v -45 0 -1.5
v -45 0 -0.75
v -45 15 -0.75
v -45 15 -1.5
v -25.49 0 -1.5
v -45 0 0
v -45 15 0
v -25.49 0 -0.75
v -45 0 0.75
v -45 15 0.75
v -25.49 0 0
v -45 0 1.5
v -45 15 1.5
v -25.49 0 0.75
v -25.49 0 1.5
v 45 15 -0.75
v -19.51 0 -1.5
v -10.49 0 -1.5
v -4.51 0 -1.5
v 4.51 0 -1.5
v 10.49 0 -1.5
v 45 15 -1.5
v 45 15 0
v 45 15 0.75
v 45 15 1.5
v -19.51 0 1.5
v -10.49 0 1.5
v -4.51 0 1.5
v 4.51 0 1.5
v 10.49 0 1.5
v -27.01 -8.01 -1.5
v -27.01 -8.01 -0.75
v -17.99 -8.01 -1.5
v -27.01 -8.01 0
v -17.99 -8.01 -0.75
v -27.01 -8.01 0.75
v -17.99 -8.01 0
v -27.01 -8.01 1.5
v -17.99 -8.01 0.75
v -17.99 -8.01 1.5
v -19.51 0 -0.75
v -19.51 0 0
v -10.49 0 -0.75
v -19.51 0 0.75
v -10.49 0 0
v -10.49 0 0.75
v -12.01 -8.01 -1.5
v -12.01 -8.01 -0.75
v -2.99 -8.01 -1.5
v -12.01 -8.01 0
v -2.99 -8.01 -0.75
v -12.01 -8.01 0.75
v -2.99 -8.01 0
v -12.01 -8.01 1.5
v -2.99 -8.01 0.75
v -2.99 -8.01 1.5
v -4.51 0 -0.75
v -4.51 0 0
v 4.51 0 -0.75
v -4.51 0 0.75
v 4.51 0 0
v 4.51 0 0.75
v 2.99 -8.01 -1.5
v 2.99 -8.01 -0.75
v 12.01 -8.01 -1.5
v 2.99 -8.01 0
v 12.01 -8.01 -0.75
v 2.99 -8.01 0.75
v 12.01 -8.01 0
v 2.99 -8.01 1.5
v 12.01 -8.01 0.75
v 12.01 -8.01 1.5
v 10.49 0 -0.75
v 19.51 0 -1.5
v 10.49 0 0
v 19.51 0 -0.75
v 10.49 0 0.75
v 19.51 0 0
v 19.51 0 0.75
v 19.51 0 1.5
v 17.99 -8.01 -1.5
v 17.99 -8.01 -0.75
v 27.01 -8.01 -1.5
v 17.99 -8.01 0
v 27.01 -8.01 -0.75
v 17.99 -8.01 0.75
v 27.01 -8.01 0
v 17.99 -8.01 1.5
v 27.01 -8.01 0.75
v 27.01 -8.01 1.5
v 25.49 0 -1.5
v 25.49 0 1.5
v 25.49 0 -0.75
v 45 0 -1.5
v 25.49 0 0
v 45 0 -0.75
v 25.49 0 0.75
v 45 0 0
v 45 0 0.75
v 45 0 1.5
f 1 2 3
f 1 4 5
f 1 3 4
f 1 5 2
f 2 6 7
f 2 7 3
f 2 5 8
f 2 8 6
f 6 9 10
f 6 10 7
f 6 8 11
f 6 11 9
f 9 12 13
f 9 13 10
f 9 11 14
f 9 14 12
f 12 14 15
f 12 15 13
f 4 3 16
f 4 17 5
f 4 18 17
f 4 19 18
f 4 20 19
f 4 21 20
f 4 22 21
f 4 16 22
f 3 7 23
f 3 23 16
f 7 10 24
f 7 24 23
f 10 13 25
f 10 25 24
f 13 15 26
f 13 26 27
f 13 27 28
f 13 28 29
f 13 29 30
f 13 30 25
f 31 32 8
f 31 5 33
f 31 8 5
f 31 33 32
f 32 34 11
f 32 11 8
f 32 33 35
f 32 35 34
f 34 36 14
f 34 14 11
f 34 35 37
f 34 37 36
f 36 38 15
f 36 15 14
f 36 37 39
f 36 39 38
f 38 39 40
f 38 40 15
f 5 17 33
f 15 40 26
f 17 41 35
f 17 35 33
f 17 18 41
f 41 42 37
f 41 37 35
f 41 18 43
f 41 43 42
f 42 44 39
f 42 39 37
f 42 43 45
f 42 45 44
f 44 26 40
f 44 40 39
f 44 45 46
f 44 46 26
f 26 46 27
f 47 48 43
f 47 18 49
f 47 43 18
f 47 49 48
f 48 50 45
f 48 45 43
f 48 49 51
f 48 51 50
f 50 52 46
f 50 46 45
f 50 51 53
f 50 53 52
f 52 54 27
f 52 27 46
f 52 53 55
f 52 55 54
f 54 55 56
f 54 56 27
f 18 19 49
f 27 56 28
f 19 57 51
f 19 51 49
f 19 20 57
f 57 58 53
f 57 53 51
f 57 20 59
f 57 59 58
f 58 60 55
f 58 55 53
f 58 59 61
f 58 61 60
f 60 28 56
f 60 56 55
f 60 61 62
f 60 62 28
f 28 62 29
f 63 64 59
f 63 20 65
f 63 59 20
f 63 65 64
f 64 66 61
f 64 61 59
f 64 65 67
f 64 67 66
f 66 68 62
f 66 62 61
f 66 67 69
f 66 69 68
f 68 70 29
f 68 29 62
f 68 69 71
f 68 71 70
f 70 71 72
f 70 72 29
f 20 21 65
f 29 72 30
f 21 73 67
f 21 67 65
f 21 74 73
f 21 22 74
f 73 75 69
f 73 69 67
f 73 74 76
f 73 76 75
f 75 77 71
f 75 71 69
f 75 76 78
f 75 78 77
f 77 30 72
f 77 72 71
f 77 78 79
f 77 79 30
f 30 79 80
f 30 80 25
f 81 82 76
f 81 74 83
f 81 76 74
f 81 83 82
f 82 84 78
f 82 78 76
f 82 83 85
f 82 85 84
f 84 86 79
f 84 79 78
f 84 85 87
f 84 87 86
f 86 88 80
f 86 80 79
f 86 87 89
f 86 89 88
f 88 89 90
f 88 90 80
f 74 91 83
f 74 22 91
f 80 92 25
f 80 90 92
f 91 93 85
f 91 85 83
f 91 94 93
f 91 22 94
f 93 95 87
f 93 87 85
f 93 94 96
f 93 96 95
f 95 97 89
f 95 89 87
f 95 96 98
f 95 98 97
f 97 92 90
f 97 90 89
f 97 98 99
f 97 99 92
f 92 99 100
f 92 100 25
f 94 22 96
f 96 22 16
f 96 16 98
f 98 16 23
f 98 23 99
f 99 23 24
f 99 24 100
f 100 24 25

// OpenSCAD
// Start: lazy_union
default_5_default_5();
// End: lazy_union

// Modules.

// 'PartMaterial undef-default - default 5.0'
module default_5_default_5() {
  // 'None : _combine_solids_and_holes'
  union() {
    // 'lower : _combine_solids_and_holes'
    union() {
      // 'front'
      multmatrix(m=[[-1.0, 0.0, 0.0, 0.0], [0.0, -1.0, 0.0, 0.0], [0.0, 0.0, 1.0, -1.5], [0.0, 0.0, 0.0, 1.0]]) {
        // 'front : _combine_solids_and_holes'
        union() {
          // 'front'
          linear_extrude(height=3.0, twist=0.0, slices=4, scale=[1.0, 1.0]) {
            polygon(points=[[0.0, 0.0], [0.0, 0.0], [-4.51, 0.0], [-2.99, 8.01], [-7.5, 8.01], [-12.01, 8.01], [-10.49, 0.0], [-15.0, 0.0], [-15.0, 0.0], [-19.509999999999998, 0.0], [-17.990000000000002, 8.01], [-22.5, 8.01], [-27.009999999999998, 8.01], [-25.490000000000002, 0.0], [-30.0, 0.0], [-45.0, 0.0], [-45.0, -15.0], [0.0, -15.0], [45.0, -15.0], [45.0, 0.0], [30.0, 0.0], [30.0, 0.0], [25.490000000000002, 0.0], [27.009999999999998, 8.01], [22.5, 8.01], [17.990000000000002, 8.01], [19.509999999999998, 0.0], [15.0, 0.0], [15.0, 0.0], [10.49, 0.0], [12.01, 8.01], [7.5, 8.01], [2.99, 8.01], [4.51, 0.0], [0.0, 0.0]], paths=[[0], [1, 2, 3, 4, 5, 6, 7, 1], [8, 9, 10, 11, 12, 13, 14, 15, 16, 17, 18, 19, 20, 8], [21, 22, 23, 24, 25, 26, 27, 21], [28, 29, 30, 31, 32, 33, 34, 28]]);
          }
        }
      }
    }
  }
} // end module default_5_default_5
